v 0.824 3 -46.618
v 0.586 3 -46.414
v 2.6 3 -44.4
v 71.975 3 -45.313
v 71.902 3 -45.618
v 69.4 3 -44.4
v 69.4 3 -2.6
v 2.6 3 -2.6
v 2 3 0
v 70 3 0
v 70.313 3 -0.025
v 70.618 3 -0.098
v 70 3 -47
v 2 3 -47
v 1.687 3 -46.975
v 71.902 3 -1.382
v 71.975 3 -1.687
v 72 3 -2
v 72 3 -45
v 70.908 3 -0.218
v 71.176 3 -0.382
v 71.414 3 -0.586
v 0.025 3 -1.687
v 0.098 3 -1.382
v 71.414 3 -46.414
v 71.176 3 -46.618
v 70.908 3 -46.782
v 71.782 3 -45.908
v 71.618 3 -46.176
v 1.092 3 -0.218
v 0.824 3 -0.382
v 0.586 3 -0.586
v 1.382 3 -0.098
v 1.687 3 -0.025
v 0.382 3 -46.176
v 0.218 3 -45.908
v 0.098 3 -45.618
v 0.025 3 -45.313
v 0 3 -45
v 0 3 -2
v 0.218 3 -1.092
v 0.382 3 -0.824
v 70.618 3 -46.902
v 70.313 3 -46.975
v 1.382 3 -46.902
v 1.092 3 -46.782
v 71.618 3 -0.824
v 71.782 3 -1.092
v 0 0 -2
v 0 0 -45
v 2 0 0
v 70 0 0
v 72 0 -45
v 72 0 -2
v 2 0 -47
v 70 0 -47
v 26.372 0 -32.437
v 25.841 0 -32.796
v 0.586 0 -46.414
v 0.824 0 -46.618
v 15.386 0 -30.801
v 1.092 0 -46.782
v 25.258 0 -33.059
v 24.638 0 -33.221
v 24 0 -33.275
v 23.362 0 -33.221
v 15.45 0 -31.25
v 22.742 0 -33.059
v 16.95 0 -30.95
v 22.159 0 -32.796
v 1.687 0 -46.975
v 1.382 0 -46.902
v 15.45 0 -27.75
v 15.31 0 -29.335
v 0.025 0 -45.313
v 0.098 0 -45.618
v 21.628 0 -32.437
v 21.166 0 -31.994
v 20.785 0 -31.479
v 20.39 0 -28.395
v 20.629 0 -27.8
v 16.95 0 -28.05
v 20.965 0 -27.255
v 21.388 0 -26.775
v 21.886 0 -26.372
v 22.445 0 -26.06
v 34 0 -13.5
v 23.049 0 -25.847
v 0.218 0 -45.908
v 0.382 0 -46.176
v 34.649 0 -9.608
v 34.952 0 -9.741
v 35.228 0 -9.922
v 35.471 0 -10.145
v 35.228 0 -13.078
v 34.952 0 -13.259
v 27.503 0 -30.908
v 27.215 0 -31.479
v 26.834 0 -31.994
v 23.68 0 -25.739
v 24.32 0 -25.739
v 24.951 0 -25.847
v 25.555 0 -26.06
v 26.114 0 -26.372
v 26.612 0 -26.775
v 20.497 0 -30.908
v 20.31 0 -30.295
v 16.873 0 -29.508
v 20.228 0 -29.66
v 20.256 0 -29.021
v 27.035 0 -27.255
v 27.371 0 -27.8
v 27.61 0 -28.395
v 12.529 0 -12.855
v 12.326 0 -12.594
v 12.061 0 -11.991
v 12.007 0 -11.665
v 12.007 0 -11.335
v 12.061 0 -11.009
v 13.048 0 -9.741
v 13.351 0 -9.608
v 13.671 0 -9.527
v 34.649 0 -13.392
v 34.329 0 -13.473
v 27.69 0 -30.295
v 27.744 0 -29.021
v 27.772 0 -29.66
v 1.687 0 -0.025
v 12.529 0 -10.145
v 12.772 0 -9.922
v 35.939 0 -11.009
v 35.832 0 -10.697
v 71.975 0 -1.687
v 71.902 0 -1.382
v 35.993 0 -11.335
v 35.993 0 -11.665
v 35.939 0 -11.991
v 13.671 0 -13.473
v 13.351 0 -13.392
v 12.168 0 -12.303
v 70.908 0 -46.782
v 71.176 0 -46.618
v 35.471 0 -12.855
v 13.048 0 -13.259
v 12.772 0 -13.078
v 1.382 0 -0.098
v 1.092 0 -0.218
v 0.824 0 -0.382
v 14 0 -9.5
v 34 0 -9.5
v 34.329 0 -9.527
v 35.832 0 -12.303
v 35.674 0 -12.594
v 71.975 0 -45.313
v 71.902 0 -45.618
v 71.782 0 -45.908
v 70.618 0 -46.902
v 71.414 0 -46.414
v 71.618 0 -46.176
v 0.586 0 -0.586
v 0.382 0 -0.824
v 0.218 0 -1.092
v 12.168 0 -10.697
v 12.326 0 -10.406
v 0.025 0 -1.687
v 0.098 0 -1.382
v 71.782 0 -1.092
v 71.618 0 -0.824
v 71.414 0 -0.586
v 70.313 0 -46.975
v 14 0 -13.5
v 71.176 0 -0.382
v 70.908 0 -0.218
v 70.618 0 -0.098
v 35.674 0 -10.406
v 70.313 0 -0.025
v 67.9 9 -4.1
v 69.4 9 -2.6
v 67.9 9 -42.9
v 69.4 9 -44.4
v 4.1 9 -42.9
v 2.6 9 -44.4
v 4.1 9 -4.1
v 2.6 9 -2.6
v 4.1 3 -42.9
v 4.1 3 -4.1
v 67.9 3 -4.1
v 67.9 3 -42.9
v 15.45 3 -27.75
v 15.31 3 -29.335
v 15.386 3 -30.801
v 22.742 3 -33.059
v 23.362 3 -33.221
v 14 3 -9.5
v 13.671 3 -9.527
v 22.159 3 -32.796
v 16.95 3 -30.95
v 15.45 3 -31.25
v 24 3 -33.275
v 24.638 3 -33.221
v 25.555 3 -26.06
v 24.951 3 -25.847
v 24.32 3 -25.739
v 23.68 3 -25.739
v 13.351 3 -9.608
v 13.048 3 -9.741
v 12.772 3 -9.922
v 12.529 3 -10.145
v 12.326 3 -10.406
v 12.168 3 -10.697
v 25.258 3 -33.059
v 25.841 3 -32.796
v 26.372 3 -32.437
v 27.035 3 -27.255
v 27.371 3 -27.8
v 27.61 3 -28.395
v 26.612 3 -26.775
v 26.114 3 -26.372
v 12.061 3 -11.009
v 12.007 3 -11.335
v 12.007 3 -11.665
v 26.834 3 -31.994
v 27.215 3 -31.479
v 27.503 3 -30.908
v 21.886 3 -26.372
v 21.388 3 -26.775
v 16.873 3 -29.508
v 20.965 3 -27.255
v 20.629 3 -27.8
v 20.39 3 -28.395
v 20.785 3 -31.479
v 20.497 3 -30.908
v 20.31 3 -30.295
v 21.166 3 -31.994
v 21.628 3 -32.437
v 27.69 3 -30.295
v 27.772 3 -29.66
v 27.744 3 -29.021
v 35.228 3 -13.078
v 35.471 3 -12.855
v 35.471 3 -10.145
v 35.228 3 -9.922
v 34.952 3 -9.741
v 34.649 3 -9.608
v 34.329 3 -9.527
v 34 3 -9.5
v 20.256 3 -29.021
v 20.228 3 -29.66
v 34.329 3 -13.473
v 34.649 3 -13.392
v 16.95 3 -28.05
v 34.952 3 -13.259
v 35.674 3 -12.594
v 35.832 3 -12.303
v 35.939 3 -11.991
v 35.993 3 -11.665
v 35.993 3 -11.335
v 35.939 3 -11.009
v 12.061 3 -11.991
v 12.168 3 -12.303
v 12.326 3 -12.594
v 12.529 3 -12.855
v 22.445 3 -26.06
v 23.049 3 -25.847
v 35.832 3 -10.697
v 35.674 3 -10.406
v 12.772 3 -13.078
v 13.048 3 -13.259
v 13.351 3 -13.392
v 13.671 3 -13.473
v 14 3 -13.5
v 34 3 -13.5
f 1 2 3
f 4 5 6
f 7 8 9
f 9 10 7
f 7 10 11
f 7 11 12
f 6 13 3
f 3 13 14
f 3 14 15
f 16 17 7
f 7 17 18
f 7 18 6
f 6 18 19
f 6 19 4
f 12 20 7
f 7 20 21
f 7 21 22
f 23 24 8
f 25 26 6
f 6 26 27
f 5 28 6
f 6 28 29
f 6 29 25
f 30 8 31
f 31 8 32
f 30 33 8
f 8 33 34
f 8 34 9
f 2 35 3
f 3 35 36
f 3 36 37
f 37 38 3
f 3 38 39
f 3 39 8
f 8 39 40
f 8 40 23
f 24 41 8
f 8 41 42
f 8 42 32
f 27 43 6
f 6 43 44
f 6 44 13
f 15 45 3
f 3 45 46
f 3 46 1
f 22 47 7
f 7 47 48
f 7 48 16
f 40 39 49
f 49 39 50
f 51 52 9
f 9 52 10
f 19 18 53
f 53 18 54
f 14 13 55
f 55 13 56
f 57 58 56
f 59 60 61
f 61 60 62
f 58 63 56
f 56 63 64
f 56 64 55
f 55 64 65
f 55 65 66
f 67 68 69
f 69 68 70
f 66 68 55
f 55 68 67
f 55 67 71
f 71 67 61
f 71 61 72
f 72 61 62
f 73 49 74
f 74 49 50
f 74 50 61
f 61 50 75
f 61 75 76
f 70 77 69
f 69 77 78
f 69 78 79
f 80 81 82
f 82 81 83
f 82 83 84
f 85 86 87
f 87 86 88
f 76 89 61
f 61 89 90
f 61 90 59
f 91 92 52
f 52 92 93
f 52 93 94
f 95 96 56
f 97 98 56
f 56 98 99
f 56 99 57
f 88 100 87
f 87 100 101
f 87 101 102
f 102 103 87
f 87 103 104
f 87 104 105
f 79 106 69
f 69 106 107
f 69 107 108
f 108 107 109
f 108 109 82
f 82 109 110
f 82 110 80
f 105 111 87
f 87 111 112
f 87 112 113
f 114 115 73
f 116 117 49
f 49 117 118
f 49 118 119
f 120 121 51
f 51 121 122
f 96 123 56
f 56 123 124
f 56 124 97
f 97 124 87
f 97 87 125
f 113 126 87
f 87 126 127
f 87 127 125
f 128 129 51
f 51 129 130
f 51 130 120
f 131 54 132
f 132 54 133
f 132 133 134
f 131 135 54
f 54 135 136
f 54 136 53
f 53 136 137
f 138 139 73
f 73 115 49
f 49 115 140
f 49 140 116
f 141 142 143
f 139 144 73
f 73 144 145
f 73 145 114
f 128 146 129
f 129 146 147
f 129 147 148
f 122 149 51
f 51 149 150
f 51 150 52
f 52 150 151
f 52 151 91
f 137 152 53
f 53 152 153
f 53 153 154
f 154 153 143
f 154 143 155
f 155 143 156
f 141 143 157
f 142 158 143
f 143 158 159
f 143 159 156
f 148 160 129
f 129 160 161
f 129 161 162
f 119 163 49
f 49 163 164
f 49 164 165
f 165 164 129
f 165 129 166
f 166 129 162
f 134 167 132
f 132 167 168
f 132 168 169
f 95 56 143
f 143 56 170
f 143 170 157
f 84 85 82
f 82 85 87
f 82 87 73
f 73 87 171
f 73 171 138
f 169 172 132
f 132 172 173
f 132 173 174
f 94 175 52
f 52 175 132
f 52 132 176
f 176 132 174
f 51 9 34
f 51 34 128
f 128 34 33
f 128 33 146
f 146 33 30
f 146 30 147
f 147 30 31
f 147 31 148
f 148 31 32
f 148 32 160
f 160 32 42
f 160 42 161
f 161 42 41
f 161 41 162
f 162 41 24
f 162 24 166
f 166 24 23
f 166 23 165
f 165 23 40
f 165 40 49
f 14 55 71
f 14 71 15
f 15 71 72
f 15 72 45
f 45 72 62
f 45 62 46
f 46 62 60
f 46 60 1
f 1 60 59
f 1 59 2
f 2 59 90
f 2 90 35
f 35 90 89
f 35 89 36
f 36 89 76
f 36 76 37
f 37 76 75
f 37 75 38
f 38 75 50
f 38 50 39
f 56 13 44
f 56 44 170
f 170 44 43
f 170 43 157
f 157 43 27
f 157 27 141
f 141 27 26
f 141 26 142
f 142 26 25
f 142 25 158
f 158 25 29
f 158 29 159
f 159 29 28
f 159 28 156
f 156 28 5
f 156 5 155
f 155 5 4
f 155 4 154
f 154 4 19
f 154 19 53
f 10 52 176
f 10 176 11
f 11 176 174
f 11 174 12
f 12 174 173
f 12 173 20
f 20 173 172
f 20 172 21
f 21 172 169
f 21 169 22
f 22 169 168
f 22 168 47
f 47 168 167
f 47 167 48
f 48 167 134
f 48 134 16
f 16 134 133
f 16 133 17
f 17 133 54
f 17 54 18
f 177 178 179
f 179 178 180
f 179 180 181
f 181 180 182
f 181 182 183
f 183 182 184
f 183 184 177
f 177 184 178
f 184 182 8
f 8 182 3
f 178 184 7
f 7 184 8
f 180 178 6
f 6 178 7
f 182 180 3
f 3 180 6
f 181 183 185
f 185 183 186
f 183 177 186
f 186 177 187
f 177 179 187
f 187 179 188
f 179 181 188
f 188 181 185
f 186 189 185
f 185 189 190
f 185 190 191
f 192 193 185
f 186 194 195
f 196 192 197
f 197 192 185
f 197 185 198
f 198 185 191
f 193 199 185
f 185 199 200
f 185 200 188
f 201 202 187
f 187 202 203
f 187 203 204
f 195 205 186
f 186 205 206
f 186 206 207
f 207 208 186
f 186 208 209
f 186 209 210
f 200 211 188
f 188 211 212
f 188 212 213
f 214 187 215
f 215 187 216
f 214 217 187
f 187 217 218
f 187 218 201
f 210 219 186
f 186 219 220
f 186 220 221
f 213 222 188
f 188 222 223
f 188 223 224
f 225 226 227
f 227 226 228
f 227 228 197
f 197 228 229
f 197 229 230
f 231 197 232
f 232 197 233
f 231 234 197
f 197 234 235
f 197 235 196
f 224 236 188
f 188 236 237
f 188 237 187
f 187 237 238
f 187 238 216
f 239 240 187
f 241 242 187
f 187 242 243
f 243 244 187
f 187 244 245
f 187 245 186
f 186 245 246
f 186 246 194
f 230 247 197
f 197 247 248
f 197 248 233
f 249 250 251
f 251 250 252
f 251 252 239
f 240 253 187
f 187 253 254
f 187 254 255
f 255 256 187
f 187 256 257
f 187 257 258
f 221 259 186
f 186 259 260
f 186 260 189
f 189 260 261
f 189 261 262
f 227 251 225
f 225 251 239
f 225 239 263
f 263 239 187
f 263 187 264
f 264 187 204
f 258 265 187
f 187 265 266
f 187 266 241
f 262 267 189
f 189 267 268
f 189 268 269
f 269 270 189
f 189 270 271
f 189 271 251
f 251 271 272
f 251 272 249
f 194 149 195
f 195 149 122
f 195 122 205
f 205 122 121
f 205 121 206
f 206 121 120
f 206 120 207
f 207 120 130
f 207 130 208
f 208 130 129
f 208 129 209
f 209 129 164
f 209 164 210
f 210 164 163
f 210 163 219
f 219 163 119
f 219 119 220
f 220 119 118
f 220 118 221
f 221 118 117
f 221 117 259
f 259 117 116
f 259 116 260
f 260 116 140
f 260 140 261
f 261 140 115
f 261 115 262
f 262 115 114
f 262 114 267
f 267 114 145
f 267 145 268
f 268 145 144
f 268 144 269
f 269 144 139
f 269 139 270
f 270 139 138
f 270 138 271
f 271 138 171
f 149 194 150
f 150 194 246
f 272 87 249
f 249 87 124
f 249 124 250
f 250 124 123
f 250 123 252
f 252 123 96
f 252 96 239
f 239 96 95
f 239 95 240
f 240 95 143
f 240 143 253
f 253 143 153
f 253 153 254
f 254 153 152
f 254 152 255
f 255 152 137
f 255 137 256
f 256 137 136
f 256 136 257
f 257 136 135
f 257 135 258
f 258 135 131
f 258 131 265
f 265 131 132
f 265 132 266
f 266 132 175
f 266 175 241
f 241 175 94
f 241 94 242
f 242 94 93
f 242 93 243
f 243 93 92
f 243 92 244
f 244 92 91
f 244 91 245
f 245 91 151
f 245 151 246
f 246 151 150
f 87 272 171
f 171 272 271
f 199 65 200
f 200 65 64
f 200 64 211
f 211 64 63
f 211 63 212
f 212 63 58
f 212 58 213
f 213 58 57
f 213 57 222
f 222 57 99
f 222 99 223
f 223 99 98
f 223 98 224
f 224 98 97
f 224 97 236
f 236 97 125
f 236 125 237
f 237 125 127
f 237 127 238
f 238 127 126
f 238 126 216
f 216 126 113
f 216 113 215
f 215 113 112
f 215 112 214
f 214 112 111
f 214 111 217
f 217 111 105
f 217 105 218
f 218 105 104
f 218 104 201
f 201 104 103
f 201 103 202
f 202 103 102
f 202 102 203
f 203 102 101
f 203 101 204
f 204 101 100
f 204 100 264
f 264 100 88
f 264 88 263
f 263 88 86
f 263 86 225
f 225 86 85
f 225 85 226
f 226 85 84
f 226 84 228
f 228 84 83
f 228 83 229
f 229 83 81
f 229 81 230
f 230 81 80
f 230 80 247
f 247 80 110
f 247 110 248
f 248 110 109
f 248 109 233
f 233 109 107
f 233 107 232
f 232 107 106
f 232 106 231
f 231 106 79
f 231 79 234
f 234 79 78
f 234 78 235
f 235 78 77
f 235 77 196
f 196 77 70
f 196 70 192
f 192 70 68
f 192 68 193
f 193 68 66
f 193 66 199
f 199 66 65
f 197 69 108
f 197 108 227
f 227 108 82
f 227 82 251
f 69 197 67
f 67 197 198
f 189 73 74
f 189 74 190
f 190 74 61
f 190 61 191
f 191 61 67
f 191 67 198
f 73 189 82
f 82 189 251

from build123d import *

# Parameters (mm, degrees)
SKETCH2_W           = 72
SKETCH2_H           = 47
BOSS_EXTRUDE1_DEPTH = 3
FILLET1_R           = 2
SKETCH3_W           = 66.8
SKETCH3_H           = 41.8
SKETCH3_W_2         = 63.8
SKETCH3_H_2         = 38.8
BOSS_EXTRUDE2_DEPTH = 6
CUT_EXTRUDE1_DEPTH  = 6
SKETCH5_R           = 3.775
CUT_EXTRUDE2_DEPTH  = 10
CUT_EXTRUDE3_DEPTH  = 10


with BuildPart() as part:
    # Sketch2 → Boss-Extrude1 (new body)
    with BuildSketch(Plane(origin=(0, 0, 0), x_dir=(1, 0, 0), z_dir=(0, 1, 0))):
        with Locations((36, 23.5)):
            Rectangle(SKETCH2_W, SKETCH2_H)
    extrude(amount=BOSS_EXTRUDE1_DEPTH)

    # Fillet1
    fillet1_edges = [part.edges().sort_by_distance(p)[0] for p in [
        (0, 1.5, 0),
        (72, 1.5, 0),
        (72, 1.5, -47),
        (0, 1.5, -47),
    ]]
    fillet(fillet1_edges, radius=FILLET1_R)

    # Sketch3 → Boss-Extrude2 (add)
    with BuildSketch(Plane(origin=(0, 3, 0), x_dir=(1, 0, 0), z_dir=(0, 1, 0))):
        with Locations((36, 23.5)):
            Rectangle(SKETCH3_W, SKETCH3_H)
        with Locations((36, 23.5)):
            Rectangle(SKETCH3_W_2, SKETCH3_H_2, mode=Mode.SUBTRACT)
    extrude(amount=BOSS_EXTRUDE2_DEPTH)

    # Sketch4 → Cut-Extrude1 (cut)
    with BuildSketch(Plane.XZ):
        with BuildLine():
            Line((14, -9.5), (34, -9.5))
            ThreePointArc((34, -9.5), (36, -11.5), (34, -13.5))
            Line((34, -13.5), (14, -13.5))
            ThreePointArc((14, -13.5), (12, -11.5), (14, -9.5))
        make_face()
    extrude(amount=-CUT_EXTRUDE1_DEPTH, mode=Mode.SUBTRACT)

    # Sketch5 → Cut-Extrude2 (cut)
    with BuildSketch(Plane.XZ):
        with Locations(Location((24, -29.5, 0), (0, 0, 270))):
            Circle(SKETCH5_R)
    extrude(amount=-CUT_EXTRUDE2_DEPTH, mode=Mode.SUBTRACT)

    # Sketch7 → Cut-Extrude3 (cut)
    with BuildSketch(Plane.XZ):
        with BuildLine():
            Line((16.95, -28.05), (15.45, -27.75))
            add(Edge.make_bspline(
                [(15.45, -27.75), (15.16612192, -29.525922028), (15.45, -31.25)],
                knots=[0, 0, 0, 0.895638879, 0.895638879, 0.895638879], degree=2))
            Line((15.45, -31.25), (16.95, -30.95))
            add(Edge.make_bspline(
                [(16.95, -28.05), (16.795171073, -29.515331085), (16.95, -30.95)],
                knots=[0, 0, 0, 0.544466013, 0.544466013, 0.544466013], degree=2))
        make_face()
    extrude(amount=-CUT_EXTRUDE3_DEPTH, mode=Mode.SUBTRACT)


solid = part.part
